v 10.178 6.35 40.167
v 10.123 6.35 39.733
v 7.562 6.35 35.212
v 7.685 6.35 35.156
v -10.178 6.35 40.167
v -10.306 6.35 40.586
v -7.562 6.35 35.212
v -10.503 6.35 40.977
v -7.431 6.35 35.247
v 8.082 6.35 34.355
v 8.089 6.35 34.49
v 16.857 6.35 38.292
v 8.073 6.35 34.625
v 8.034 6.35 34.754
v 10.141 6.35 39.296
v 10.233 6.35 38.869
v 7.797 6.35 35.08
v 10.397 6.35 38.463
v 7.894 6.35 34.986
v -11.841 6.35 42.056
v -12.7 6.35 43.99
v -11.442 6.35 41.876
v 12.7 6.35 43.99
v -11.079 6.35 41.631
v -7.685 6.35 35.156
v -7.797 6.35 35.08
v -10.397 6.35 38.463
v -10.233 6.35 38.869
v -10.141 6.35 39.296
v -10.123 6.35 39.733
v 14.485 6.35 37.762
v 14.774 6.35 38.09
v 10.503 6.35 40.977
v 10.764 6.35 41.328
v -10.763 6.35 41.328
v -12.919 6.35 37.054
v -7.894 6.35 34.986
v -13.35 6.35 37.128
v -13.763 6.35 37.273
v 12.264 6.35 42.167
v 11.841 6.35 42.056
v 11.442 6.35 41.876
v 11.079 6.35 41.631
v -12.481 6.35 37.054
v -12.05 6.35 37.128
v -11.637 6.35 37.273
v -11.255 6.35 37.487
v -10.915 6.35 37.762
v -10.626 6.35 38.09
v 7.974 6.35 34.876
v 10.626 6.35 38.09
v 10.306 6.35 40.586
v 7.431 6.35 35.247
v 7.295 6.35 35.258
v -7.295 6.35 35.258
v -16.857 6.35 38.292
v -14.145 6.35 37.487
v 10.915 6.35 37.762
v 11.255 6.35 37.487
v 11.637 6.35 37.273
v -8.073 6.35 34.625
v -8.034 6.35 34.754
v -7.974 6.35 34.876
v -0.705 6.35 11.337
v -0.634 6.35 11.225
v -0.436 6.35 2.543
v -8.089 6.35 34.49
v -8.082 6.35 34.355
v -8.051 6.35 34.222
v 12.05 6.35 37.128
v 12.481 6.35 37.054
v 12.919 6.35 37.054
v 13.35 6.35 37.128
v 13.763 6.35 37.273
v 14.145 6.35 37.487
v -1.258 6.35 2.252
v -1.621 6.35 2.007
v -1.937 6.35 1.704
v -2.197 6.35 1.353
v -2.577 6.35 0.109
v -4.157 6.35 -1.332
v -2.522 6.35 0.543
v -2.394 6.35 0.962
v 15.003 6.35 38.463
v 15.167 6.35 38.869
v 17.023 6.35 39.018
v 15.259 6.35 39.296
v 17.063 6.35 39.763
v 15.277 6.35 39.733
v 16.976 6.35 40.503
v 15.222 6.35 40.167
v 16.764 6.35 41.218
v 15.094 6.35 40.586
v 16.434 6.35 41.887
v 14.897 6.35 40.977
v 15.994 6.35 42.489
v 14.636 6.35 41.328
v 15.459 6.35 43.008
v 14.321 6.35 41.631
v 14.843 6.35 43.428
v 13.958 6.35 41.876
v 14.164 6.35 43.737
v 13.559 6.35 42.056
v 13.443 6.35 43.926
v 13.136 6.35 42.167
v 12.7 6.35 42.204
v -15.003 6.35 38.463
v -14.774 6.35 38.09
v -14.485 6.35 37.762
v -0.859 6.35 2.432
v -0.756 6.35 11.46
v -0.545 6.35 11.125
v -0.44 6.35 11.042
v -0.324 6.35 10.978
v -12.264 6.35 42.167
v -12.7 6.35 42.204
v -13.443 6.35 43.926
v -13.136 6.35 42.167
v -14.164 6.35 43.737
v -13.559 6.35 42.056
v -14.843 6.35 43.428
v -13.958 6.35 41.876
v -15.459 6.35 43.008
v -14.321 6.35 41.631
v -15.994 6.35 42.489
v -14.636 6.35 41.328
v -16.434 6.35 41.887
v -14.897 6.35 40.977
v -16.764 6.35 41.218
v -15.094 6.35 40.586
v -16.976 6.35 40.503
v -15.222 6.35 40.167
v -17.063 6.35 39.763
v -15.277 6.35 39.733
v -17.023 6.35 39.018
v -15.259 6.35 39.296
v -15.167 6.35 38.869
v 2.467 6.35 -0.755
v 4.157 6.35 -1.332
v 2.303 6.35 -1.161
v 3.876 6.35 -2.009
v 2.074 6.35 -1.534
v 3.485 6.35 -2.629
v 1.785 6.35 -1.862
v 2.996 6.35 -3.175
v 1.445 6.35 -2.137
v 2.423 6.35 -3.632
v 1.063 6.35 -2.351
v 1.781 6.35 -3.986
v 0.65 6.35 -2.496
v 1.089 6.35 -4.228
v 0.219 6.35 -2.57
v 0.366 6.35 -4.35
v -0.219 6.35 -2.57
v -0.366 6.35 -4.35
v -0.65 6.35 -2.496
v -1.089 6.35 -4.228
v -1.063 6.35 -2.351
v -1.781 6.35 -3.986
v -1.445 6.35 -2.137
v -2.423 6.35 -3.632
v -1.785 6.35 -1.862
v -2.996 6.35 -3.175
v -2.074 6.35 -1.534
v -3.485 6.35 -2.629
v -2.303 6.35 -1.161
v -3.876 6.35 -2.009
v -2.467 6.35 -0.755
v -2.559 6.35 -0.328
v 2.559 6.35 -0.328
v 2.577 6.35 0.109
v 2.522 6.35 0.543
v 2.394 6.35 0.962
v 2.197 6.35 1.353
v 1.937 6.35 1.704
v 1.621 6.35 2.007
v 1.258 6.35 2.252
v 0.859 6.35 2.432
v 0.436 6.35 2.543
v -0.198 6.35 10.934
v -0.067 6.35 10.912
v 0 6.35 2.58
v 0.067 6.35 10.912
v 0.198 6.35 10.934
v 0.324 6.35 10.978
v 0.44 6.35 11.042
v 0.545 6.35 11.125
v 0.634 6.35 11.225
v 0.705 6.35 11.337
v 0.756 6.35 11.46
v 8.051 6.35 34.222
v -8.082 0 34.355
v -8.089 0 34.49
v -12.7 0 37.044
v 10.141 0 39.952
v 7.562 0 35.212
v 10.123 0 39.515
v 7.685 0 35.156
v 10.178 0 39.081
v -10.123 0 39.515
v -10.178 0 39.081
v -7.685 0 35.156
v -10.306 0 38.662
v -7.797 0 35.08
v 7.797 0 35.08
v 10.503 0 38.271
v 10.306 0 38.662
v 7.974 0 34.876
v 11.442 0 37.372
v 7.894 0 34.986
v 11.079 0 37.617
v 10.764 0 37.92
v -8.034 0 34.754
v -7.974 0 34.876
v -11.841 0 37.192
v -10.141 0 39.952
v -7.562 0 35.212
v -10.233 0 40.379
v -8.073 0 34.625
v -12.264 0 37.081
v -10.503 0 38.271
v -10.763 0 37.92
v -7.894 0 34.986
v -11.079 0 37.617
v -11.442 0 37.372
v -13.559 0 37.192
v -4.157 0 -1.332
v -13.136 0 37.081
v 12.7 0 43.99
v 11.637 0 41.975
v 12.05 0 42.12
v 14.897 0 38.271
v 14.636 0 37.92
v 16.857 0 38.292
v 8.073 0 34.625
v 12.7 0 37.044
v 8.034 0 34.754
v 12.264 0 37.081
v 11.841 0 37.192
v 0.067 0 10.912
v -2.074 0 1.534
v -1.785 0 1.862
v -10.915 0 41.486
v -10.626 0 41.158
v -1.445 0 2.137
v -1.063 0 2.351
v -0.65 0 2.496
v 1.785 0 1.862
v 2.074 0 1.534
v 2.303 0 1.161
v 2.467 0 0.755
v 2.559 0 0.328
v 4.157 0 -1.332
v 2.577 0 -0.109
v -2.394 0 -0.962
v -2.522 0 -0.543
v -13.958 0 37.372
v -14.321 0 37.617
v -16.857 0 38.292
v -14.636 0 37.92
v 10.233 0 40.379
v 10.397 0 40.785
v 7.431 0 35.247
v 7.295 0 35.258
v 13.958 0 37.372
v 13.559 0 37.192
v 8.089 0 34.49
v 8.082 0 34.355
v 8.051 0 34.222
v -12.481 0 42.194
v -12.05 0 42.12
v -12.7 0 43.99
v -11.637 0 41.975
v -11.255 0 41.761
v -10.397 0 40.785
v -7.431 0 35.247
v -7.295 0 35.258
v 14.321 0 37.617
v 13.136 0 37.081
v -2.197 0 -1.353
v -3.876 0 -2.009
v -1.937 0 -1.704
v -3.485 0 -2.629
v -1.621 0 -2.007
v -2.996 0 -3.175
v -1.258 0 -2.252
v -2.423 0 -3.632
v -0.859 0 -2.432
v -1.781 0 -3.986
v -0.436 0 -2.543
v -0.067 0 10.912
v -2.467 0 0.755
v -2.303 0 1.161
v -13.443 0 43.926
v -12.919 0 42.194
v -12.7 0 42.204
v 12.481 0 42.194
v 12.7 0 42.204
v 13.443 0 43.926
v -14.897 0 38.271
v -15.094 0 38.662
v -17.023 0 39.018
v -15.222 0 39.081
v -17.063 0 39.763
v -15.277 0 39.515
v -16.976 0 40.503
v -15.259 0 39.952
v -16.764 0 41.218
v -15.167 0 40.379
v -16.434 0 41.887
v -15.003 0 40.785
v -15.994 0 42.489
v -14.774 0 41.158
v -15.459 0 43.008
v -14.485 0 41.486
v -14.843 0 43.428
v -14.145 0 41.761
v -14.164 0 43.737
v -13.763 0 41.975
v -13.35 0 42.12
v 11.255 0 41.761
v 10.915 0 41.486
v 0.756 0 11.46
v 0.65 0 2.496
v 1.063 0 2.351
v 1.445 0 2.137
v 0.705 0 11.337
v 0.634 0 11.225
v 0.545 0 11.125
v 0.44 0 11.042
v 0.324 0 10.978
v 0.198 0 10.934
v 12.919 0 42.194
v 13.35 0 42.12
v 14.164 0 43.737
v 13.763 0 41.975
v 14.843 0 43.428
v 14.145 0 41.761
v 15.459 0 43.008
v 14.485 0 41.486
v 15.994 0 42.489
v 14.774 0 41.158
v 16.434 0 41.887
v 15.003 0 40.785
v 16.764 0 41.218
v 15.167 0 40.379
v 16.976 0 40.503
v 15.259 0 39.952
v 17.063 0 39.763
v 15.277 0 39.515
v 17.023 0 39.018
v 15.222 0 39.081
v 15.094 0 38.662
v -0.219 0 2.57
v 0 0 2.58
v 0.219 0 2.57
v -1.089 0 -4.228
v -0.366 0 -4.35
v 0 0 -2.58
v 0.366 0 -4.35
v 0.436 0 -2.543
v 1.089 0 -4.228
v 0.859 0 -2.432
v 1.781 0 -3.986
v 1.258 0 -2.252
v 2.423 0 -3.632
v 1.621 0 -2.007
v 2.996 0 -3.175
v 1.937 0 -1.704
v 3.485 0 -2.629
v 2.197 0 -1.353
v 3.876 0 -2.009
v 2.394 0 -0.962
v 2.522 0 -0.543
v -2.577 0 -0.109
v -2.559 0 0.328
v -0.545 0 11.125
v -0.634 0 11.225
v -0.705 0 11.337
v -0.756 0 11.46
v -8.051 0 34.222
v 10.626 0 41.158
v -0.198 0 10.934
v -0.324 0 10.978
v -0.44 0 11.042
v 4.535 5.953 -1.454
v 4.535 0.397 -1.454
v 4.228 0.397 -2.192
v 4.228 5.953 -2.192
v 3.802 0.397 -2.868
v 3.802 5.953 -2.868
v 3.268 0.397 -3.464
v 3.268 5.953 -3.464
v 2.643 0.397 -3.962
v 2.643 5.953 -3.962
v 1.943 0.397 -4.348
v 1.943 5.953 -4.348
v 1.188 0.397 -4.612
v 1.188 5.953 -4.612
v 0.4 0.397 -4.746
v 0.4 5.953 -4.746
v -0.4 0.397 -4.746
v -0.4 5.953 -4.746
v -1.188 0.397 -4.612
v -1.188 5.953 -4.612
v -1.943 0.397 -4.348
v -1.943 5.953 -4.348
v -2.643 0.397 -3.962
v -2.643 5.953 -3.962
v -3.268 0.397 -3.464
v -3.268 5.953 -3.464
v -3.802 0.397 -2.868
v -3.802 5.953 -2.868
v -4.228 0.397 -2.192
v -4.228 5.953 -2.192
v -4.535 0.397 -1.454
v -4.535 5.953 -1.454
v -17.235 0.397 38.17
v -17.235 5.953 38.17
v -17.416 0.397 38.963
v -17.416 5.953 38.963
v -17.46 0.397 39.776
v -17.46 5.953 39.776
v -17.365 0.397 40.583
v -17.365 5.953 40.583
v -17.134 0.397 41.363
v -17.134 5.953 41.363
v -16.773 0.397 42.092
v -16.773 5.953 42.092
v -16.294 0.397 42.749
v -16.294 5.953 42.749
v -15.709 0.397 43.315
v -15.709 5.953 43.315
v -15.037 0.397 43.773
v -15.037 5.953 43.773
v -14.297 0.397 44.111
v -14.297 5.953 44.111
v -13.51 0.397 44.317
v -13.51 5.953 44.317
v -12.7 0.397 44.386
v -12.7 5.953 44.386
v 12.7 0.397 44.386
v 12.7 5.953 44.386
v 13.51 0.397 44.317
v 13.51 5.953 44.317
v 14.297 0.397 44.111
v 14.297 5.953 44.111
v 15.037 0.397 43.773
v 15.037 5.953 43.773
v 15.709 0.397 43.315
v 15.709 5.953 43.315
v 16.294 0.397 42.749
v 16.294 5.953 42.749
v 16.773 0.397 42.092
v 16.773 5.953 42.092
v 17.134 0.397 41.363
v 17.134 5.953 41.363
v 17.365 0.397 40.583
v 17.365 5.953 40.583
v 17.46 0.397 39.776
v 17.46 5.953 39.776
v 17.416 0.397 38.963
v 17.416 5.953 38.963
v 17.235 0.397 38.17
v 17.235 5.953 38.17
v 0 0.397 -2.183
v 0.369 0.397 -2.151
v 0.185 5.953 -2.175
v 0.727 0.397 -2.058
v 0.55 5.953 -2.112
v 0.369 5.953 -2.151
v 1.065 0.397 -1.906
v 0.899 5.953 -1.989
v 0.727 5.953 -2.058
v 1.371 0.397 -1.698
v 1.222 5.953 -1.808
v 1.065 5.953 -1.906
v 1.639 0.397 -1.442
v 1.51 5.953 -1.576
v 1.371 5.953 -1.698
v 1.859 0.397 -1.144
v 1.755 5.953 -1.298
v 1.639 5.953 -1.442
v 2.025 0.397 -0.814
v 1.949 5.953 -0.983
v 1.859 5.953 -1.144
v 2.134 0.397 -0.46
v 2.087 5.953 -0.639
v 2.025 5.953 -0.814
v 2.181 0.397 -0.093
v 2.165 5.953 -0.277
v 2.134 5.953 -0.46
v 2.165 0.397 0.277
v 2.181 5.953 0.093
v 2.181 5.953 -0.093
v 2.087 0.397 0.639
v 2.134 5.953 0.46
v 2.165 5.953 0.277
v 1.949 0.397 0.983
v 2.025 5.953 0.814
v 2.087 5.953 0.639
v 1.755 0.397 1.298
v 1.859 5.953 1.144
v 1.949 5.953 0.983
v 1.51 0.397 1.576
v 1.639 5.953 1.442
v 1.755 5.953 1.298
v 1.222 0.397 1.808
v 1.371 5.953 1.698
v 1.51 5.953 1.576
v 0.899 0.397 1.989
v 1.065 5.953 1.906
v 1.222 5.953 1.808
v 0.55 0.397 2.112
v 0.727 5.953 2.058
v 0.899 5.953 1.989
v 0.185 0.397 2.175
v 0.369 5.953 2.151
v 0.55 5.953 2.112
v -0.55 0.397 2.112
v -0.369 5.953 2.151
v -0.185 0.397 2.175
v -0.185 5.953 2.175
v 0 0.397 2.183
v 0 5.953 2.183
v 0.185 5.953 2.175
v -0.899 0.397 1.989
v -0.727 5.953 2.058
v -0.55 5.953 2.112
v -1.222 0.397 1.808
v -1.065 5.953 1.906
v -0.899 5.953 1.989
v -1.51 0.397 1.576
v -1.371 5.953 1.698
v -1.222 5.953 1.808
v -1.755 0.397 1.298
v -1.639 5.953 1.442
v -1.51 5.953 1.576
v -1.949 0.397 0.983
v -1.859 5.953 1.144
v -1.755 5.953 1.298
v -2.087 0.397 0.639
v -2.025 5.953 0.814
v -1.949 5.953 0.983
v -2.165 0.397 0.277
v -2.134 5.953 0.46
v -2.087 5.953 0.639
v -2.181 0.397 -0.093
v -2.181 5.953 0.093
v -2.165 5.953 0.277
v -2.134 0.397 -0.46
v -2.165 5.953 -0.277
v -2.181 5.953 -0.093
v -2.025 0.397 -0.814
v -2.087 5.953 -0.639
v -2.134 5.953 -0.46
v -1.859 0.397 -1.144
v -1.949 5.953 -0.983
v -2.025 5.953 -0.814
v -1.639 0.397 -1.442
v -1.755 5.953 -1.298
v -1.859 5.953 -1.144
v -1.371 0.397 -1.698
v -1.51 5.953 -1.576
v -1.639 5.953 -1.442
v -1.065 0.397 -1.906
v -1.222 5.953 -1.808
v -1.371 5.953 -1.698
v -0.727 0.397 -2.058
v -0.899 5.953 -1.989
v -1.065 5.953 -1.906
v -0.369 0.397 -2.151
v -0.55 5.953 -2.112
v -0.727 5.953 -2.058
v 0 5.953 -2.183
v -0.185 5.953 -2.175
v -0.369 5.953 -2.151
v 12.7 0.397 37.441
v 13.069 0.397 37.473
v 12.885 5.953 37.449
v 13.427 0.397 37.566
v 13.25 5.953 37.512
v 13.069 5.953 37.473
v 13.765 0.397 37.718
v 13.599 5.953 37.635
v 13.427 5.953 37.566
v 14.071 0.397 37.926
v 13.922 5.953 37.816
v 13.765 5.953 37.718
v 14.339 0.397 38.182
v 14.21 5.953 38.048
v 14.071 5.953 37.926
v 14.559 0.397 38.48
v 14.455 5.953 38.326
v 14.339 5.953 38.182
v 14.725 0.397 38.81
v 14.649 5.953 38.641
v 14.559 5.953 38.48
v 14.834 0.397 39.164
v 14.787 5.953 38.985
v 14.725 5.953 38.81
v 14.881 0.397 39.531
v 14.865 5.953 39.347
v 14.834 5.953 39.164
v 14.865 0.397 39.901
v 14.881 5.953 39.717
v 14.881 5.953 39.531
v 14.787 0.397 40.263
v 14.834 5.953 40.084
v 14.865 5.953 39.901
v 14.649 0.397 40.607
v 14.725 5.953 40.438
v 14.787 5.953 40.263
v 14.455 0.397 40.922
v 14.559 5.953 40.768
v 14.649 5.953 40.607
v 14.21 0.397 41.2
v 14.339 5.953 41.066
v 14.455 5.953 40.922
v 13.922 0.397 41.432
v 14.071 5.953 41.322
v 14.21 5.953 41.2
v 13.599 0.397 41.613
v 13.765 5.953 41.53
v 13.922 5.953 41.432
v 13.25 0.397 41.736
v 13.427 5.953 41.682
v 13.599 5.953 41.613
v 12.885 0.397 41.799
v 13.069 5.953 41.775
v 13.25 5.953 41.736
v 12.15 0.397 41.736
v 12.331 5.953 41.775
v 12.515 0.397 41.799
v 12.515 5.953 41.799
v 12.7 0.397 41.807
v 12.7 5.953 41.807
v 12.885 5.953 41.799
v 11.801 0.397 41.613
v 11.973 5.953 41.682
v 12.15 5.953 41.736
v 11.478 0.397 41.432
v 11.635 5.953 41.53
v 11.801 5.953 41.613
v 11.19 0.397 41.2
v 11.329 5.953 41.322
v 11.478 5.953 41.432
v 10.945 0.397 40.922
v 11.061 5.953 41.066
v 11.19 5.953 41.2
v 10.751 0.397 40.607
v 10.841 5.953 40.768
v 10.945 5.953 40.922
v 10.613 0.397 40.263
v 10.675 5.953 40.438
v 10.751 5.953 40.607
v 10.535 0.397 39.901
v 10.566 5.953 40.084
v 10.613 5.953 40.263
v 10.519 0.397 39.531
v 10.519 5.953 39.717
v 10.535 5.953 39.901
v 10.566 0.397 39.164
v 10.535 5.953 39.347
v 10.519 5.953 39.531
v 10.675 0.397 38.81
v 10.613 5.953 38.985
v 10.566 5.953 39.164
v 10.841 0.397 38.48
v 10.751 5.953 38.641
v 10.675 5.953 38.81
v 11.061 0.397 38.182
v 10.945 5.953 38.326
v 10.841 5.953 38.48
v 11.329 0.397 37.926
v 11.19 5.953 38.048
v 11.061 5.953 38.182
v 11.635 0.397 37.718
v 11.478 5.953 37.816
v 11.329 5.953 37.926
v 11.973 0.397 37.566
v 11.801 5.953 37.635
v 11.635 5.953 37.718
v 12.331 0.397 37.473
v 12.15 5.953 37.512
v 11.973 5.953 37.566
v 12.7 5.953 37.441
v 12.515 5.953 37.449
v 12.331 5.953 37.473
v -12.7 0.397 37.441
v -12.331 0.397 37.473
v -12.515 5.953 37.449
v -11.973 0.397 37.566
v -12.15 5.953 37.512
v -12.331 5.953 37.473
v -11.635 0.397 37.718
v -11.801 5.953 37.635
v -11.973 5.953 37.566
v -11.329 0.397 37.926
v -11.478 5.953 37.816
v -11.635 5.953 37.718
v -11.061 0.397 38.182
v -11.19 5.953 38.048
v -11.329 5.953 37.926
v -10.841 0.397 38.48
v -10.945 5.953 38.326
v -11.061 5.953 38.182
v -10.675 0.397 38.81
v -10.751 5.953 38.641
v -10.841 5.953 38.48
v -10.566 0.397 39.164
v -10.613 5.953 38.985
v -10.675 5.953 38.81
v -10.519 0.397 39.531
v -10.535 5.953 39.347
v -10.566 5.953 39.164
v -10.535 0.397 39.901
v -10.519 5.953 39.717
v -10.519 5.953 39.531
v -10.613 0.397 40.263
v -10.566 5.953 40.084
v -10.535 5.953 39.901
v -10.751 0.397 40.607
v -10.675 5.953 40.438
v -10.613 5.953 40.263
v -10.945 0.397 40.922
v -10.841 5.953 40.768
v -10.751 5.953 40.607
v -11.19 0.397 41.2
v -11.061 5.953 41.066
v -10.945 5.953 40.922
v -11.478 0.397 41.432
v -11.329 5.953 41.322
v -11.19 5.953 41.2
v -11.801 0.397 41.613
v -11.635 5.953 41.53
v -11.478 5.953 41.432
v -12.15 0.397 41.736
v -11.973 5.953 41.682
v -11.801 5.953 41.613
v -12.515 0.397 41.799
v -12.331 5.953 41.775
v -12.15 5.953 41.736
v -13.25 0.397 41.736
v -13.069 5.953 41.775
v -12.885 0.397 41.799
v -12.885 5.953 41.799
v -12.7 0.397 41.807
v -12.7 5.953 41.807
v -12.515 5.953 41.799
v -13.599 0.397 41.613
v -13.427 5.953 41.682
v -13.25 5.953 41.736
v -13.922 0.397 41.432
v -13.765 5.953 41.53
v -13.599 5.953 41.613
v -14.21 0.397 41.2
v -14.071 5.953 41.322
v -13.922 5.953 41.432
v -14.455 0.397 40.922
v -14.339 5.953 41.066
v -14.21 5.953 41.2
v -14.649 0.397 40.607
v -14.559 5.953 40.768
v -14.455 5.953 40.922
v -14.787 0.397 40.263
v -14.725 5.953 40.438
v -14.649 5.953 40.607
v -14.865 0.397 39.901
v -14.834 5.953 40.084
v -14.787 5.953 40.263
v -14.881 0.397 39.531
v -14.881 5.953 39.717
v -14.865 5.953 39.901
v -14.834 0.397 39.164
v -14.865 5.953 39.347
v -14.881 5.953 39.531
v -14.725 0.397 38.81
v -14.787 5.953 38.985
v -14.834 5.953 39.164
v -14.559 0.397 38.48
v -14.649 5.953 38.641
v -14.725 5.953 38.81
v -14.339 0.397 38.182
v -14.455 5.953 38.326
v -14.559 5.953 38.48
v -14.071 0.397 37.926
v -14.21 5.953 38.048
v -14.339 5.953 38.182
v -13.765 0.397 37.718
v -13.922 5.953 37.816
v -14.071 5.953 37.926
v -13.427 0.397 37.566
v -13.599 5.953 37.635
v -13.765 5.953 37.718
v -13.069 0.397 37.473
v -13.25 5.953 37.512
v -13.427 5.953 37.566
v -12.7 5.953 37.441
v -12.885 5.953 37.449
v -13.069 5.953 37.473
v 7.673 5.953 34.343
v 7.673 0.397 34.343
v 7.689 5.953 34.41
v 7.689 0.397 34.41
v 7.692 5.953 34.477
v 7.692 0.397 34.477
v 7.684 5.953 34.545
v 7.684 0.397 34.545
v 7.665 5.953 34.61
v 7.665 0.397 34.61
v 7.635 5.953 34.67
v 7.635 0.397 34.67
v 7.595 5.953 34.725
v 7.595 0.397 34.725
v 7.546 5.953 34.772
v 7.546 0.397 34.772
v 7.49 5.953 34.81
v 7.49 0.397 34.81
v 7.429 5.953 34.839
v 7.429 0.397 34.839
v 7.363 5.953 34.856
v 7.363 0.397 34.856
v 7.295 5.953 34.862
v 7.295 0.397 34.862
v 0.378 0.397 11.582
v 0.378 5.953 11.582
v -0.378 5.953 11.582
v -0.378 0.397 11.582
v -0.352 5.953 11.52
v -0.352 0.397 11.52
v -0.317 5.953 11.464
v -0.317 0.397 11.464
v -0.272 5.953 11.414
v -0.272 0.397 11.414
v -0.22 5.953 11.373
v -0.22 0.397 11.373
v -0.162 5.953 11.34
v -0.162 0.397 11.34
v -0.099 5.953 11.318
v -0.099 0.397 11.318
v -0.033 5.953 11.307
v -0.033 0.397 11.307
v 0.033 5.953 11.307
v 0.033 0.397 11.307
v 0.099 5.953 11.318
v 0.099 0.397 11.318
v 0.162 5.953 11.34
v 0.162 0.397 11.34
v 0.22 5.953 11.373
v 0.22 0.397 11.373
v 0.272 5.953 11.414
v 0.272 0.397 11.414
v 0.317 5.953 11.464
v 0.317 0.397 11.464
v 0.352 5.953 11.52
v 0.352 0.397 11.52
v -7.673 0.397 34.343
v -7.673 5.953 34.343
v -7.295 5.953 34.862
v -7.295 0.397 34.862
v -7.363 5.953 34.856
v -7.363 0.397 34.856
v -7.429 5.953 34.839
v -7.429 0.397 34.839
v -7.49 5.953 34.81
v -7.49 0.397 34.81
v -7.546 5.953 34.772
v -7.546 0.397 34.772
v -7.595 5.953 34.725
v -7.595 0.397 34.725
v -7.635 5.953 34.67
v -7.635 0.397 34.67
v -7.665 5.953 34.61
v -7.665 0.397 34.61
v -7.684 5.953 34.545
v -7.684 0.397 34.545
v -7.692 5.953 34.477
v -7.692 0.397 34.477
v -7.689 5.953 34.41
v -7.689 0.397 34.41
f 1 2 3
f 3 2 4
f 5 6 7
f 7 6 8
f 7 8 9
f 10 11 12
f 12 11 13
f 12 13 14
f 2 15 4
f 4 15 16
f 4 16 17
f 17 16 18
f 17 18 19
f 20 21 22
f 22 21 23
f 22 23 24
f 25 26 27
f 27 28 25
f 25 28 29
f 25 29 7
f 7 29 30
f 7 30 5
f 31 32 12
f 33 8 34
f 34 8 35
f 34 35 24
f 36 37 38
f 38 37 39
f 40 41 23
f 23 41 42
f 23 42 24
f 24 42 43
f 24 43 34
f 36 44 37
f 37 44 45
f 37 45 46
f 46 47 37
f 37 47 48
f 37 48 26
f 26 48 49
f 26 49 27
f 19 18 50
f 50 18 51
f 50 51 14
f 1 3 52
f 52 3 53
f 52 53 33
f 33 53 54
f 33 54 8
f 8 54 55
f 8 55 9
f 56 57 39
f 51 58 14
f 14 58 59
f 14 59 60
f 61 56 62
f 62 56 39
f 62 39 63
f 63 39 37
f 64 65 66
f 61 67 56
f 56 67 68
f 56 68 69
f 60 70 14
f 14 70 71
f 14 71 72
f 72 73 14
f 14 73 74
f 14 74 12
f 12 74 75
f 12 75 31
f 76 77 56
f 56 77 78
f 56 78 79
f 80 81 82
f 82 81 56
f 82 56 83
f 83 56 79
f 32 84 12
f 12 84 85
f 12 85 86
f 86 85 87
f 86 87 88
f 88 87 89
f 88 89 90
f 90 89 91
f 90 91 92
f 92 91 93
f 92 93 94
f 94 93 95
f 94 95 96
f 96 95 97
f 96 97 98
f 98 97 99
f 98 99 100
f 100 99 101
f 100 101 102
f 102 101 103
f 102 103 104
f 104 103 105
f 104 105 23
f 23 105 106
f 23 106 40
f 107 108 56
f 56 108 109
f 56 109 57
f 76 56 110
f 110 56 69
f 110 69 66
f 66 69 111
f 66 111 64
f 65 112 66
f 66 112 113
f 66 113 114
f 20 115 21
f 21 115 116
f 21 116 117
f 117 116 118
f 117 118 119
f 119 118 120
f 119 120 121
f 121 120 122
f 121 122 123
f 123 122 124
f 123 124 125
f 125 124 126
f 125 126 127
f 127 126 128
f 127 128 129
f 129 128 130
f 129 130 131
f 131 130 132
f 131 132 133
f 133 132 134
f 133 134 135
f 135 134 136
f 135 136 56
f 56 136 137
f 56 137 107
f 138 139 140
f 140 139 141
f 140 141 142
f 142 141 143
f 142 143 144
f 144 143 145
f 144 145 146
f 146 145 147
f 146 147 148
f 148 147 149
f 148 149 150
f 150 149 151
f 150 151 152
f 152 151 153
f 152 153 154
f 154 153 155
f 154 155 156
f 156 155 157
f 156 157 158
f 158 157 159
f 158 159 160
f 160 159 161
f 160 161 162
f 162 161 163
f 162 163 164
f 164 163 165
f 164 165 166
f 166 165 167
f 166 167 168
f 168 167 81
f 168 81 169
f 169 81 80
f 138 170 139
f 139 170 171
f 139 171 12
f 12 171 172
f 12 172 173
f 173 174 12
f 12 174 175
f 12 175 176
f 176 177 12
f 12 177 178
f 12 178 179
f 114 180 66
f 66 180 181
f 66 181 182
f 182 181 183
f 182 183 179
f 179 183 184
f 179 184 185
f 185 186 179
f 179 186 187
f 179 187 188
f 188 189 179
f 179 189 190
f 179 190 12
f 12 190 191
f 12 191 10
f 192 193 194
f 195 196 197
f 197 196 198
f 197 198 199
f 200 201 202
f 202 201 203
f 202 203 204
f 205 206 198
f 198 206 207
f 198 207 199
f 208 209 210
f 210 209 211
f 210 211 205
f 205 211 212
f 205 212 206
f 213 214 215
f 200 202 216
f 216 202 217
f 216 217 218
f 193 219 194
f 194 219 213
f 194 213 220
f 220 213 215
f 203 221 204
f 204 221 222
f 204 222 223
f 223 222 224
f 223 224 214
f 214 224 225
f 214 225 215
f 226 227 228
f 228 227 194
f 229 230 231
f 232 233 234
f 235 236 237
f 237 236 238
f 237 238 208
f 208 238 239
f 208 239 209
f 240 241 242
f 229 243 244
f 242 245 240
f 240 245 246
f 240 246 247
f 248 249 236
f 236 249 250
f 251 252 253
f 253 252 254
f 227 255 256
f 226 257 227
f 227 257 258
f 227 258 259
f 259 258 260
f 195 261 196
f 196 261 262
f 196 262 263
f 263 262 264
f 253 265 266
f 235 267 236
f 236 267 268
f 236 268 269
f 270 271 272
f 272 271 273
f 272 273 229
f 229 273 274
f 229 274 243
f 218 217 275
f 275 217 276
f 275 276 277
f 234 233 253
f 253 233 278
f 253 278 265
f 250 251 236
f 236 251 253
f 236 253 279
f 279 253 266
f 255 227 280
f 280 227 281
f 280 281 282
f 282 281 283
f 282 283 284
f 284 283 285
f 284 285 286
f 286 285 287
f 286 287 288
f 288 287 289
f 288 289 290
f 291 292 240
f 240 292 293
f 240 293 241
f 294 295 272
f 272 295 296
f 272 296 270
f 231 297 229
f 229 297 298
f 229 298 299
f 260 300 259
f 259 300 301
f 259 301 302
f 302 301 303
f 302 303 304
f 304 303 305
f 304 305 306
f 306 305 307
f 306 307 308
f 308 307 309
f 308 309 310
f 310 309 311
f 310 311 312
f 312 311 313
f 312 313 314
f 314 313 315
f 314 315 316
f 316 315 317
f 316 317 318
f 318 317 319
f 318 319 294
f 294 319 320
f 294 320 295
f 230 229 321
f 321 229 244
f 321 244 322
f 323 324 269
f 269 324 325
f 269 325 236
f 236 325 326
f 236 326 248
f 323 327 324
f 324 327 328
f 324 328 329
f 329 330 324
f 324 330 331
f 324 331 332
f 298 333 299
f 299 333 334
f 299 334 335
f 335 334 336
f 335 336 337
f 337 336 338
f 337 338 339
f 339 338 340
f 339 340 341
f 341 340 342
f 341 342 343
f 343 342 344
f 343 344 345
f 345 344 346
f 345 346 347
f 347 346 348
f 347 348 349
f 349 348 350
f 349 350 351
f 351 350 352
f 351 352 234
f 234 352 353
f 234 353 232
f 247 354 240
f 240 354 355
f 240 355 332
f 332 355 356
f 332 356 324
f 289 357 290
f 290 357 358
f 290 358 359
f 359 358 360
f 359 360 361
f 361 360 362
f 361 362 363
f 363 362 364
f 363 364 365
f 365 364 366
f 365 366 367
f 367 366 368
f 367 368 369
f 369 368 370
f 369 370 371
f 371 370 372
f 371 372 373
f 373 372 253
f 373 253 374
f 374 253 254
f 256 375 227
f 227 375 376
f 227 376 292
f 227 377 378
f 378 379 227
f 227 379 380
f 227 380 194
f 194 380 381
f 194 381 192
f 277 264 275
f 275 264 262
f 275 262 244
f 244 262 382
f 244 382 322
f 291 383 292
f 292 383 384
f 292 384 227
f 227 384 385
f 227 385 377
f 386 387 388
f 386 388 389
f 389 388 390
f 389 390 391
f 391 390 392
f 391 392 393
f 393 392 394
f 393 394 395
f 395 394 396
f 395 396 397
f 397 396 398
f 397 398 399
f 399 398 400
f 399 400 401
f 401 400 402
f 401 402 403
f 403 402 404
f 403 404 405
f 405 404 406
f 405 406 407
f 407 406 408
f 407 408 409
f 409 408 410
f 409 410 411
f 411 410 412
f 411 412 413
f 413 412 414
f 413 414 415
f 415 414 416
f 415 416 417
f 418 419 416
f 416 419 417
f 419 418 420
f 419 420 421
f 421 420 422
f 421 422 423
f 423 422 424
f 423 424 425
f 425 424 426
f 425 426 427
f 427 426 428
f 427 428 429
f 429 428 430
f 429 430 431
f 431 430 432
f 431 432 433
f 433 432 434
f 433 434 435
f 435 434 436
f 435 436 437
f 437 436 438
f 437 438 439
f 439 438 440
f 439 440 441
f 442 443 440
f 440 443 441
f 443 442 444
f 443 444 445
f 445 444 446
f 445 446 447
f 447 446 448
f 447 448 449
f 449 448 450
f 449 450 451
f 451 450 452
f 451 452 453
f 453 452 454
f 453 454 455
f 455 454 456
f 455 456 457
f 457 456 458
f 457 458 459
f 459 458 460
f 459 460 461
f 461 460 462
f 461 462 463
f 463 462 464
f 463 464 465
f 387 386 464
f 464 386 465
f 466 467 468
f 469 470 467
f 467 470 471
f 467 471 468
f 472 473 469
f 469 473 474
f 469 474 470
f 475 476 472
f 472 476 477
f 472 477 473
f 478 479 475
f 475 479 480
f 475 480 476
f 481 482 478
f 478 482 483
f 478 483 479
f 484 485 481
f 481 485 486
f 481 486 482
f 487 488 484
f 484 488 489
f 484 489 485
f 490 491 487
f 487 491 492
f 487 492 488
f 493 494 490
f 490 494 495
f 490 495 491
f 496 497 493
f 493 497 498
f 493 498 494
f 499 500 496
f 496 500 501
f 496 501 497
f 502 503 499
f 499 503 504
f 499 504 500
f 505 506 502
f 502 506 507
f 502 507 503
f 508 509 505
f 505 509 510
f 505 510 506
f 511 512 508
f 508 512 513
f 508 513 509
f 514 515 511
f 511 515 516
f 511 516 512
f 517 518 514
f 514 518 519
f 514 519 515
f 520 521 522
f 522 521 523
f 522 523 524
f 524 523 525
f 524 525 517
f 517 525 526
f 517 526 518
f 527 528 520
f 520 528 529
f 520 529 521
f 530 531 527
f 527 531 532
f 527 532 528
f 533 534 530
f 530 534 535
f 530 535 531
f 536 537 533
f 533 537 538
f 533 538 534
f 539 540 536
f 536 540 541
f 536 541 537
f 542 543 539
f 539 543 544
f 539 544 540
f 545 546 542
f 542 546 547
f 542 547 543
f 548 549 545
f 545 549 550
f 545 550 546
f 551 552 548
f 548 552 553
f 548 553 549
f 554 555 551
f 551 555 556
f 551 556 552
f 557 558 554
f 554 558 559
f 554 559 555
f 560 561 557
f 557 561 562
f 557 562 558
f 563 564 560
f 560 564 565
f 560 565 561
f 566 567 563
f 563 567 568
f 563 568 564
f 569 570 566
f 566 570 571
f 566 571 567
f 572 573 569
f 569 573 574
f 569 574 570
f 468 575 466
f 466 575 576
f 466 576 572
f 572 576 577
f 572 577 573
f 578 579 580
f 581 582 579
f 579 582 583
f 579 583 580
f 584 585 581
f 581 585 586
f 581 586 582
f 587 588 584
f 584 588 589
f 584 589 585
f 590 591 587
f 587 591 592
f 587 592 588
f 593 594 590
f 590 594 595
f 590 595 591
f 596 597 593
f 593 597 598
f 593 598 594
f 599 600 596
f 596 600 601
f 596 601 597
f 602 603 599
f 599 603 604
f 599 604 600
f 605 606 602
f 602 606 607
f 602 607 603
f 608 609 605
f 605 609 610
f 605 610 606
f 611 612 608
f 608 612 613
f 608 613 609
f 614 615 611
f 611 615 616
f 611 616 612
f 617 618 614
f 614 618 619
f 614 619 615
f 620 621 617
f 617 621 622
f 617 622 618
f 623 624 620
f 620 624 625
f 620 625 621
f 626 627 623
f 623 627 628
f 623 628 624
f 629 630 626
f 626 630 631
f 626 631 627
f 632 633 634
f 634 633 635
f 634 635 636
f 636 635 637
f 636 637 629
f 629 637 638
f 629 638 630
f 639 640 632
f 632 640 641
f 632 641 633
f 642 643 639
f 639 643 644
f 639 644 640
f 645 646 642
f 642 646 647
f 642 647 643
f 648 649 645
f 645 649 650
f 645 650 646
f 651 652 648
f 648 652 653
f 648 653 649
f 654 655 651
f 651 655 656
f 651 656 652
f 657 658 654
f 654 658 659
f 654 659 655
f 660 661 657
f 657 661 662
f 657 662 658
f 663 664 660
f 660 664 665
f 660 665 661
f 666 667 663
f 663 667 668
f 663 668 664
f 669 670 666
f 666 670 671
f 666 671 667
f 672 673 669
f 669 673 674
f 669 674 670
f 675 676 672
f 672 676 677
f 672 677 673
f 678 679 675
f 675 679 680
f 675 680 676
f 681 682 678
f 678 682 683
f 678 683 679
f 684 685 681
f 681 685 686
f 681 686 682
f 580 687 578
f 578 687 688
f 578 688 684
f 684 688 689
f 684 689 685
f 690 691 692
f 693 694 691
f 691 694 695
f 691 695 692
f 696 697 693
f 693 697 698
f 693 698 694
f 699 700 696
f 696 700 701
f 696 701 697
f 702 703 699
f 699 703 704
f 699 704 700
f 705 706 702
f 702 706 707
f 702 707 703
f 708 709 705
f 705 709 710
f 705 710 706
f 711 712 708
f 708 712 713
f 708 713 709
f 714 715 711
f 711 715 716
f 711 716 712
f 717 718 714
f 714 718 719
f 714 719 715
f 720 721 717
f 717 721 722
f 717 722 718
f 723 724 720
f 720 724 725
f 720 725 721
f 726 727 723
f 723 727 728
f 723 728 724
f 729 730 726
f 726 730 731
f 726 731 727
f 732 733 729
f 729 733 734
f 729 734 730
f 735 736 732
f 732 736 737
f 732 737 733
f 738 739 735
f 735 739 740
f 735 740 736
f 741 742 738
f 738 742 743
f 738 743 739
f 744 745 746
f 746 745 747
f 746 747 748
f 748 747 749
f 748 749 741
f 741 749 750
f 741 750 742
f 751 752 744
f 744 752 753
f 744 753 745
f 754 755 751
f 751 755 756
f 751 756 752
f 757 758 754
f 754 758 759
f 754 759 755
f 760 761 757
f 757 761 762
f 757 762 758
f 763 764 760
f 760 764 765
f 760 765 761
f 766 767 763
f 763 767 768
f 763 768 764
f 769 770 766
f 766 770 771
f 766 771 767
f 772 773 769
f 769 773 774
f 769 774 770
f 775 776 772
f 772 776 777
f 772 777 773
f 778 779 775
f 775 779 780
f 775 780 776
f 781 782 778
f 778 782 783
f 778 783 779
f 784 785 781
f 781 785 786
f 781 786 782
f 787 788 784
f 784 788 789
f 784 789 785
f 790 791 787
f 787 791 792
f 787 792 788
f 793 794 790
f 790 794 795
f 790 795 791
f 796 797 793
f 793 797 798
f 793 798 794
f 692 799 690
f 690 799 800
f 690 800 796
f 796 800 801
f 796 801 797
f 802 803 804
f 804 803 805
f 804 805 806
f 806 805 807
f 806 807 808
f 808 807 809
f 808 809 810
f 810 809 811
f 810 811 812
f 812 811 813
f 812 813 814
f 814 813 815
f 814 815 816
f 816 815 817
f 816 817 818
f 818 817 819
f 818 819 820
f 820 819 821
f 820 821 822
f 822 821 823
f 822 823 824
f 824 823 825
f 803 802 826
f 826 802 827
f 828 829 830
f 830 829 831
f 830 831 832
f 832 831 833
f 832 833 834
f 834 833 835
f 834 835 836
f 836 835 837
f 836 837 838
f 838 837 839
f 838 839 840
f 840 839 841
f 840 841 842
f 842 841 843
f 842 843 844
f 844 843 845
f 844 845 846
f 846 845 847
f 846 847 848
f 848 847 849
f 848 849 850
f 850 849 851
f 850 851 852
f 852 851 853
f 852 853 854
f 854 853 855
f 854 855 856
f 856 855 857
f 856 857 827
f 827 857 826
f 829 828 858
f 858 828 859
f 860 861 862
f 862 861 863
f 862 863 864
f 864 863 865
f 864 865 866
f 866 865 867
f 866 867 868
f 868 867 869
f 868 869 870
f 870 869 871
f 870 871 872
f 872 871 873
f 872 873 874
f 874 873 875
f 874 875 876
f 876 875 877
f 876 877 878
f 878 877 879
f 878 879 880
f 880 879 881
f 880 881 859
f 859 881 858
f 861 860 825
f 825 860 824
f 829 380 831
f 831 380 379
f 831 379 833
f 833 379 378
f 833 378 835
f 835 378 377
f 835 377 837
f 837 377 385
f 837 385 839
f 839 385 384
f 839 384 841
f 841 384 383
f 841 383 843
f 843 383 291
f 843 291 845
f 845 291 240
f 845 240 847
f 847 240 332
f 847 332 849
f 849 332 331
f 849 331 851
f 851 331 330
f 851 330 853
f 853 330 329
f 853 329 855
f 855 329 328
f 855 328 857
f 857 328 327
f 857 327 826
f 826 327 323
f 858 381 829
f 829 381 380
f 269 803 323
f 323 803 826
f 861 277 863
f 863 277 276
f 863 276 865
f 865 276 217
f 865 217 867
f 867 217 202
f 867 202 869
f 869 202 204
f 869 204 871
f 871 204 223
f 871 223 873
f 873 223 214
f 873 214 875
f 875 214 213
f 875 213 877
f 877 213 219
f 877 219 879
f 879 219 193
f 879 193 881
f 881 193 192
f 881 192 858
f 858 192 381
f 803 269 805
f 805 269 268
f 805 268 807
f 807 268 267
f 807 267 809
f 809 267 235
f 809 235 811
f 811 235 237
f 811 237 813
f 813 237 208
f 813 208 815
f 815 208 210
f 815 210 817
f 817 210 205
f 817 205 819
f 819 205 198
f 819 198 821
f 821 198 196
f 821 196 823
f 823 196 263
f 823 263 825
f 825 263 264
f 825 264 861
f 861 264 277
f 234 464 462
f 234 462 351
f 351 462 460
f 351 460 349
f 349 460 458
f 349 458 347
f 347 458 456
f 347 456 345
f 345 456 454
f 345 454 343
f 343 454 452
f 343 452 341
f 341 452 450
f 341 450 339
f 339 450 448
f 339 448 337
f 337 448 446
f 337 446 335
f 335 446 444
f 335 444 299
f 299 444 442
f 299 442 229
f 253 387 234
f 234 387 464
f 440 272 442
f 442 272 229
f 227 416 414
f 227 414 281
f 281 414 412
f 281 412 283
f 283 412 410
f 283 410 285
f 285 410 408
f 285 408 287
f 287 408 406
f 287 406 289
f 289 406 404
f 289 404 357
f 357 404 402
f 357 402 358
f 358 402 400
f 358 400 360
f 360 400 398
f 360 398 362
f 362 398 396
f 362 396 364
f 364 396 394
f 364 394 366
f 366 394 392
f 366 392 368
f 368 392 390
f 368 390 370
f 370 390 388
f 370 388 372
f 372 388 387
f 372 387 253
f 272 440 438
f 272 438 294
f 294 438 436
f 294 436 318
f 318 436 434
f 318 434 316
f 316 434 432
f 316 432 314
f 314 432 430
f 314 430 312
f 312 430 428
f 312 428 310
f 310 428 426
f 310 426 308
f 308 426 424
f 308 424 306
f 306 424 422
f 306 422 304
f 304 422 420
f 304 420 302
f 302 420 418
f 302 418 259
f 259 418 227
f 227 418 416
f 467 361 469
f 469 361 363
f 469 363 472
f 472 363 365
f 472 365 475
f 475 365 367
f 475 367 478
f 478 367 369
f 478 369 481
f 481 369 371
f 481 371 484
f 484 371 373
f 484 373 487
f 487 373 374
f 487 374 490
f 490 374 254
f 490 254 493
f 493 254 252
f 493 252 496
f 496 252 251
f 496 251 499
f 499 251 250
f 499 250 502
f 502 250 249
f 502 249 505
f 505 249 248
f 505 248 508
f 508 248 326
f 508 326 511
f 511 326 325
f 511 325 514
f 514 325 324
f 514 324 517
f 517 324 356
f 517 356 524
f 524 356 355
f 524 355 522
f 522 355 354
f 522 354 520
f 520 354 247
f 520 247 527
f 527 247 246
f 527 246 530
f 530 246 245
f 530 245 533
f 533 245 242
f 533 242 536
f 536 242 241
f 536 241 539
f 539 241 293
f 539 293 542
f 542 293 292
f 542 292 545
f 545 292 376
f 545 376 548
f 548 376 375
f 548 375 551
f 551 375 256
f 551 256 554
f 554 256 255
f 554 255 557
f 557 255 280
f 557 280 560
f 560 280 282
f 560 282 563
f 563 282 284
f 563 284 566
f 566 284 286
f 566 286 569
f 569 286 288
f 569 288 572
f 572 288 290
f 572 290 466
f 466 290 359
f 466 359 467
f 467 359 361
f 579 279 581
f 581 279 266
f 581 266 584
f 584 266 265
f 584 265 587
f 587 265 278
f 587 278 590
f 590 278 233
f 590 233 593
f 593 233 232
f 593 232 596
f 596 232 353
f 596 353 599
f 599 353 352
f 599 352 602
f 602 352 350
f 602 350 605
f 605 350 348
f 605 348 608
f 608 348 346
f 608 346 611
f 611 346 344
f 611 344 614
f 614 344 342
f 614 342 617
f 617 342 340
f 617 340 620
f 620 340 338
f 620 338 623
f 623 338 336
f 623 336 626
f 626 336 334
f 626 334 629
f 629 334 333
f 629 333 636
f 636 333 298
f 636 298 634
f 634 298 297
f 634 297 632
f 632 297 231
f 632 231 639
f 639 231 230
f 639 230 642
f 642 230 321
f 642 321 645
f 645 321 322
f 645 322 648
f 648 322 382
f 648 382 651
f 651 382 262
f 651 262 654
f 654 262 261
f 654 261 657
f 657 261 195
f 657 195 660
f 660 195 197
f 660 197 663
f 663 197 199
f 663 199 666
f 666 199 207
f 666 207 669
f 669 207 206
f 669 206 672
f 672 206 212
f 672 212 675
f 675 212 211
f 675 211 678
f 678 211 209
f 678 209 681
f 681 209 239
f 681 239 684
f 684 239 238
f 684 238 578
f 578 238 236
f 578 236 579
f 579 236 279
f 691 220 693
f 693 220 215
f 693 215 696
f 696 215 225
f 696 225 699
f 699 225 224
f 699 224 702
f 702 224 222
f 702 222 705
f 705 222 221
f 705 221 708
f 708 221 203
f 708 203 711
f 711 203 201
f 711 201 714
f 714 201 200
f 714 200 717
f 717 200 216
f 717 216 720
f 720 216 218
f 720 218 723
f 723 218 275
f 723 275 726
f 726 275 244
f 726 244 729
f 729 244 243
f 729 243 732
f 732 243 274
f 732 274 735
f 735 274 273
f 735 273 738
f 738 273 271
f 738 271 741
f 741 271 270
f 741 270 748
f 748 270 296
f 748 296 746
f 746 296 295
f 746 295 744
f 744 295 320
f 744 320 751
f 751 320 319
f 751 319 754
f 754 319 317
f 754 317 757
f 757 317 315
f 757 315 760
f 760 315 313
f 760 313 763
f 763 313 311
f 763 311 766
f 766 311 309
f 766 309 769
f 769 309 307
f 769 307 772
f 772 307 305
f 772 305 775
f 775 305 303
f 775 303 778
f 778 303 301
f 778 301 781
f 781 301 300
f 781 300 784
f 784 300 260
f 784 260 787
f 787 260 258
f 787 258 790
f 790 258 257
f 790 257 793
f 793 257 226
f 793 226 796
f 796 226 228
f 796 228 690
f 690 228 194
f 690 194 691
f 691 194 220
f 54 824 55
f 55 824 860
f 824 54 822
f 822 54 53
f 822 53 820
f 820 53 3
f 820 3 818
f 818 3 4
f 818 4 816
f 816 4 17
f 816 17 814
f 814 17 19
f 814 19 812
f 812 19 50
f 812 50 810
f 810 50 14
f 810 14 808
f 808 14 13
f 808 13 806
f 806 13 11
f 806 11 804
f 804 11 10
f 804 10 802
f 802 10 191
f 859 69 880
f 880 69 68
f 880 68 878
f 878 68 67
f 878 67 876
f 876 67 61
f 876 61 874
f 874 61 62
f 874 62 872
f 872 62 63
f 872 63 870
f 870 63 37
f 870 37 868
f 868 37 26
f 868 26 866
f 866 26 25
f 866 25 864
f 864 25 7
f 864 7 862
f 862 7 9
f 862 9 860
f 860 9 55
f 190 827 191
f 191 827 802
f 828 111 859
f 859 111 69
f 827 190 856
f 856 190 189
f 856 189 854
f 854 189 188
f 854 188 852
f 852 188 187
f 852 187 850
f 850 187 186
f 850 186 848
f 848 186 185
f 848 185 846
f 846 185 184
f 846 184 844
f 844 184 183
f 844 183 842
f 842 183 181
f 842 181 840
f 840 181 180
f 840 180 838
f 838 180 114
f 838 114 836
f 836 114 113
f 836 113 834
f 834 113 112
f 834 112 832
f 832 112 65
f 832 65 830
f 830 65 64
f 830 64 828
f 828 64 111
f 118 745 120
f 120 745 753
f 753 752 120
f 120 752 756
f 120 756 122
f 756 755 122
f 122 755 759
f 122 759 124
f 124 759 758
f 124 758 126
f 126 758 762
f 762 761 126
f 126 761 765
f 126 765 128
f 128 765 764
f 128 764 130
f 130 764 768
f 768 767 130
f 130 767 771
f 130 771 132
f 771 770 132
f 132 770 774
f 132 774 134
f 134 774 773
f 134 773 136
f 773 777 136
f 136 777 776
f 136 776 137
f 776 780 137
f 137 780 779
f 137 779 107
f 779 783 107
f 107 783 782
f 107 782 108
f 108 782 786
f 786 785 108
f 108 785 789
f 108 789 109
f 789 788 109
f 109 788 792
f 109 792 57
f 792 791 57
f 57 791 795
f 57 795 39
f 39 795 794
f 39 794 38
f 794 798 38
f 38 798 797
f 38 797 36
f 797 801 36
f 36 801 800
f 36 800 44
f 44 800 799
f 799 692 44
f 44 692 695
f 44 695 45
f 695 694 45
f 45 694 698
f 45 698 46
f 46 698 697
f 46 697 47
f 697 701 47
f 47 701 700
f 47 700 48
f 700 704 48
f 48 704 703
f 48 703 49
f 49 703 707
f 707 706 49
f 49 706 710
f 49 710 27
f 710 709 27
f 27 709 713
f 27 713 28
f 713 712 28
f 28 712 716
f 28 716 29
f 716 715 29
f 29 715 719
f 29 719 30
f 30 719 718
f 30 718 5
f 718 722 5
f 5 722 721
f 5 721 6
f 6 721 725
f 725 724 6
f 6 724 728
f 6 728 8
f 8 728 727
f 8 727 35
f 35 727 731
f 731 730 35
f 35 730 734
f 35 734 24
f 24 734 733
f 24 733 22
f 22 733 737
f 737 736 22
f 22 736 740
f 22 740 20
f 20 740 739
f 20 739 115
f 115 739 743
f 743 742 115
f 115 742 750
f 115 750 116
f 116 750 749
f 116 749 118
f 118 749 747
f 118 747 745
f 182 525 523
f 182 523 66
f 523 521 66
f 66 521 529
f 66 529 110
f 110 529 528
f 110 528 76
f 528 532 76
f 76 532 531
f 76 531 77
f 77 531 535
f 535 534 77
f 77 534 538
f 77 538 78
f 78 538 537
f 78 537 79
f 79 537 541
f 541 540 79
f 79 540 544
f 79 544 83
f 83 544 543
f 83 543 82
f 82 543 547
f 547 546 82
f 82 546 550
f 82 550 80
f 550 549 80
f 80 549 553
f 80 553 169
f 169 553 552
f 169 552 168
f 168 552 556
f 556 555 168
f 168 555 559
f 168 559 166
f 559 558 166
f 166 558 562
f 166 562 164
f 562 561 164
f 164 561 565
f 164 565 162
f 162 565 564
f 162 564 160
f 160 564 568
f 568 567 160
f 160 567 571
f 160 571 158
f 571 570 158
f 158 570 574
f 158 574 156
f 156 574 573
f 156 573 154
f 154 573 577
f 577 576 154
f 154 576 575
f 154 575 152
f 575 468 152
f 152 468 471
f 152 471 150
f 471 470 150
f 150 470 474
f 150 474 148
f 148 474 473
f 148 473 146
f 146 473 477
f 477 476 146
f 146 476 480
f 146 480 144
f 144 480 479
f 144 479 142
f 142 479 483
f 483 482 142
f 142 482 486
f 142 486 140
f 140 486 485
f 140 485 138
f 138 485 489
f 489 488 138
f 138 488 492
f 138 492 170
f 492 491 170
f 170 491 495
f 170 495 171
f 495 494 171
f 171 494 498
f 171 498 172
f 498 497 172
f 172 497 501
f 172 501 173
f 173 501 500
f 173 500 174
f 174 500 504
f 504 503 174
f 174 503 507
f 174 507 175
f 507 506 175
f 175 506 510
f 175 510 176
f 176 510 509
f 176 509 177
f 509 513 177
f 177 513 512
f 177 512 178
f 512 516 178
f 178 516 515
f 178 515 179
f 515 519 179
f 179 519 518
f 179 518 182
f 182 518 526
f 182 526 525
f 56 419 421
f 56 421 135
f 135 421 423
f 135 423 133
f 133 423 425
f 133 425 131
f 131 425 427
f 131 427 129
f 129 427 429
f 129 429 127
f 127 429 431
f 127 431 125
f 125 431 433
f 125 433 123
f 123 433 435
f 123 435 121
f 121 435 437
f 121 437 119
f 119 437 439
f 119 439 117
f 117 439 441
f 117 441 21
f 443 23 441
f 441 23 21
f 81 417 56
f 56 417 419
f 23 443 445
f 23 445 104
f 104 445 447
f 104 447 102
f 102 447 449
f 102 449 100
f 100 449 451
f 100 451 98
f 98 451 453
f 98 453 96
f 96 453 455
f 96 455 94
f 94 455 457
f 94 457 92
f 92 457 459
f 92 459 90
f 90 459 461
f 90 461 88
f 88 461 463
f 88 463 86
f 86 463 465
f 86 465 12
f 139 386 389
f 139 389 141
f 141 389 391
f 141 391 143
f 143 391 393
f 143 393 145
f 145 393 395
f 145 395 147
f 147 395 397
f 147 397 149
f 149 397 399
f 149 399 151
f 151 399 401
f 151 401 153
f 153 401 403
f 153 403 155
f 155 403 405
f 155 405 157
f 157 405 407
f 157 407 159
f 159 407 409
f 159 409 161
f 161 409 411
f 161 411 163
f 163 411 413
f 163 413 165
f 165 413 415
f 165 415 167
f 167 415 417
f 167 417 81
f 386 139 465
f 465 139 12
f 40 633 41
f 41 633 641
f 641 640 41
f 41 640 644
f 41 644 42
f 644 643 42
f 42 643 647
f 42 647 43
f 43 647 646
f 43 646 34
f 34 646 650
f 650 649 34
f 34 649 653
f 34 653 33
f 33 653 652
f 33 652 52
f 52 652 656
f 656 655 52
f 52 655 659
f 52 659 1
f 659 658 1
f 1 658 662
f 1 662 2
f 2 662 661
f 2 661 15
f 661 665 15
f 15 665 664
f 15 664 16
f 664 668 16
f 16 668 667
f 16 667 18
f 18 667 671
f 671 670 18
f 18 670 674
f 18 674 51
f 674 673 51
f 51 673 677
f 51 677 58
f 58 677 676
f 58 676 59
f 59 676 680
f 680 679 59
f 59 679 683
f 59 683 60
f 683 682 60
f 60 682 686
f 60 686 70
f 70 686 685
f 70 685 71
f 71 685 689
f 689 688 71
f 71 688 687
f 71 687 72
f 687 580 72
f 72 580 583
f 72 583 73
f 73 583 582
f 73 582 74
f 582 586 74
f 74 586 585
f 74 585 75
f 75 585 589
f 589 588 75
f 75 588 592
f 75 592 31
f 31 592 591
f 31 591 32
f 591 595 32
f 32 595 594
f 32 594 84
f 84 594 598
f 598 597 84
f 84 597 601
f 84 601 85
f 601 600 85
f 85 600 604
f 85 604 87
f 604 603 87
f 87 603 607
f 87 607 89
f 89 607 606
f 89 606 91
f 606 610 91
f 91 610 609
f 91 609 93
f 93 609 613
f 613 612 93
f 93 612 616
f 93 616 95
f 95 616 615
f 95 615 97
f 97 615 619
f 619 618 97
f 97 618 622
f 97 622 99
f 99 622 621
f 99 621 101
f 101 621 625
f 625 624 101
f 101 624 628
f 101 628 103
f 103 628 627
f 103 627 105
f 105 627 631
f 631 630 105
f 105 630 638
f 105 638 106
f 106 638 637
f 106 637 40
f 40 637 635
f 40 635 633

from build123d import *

# Parameters (mm, degrees)
SKETCH1_R           = 2.1828125
BOSS_EXTRUDE2_DEPTH = 6.35
CHAMFER2_SIZE       = 0.396875


with BuildPart() as part:
    # Sketch1 → Boss-Extrude2 (new body)
    with BuildSketch(Plane(origin=(0, 0, 0), x_dir=(1, 0, 0), z_dir=(0, 1, 0))):
        with BuildLine():
            Line((-4.535244397, 1.453603973), (-17.235244397, -38.170396027))
            ThreePointArc((-17.235244397, -38.170396027), (-16.547349423, -42.431010628), (-12.7, -44.3865))
            Line((-12.7, -44.3865), (12.7, -44.3865))
            ThreePointArc((12.7, -44.3865), (16.547349423, -42.431010628), (17.235244397, -38.170396027))
            Line((17.235244397, -38.170396027), (4.535244397, 1.453603973))
            ThreePointArc((4.535244397, 1.453603973), (0, 4.7625), (-4.535244397, 1.453603973))
        make_face()
        Circle(SKETCH1_R, mode=Mode.SUBTRACT)
        with Locations((12.7, -39.624)):
            Circle(SKETCH1_R, mode=Mode.SUBTRACT)
        with Locations((-12.7, -39.624)):
            Circle(SKETCH1_R, mode=Mode.SUBTRACT)
        with BuildLine():
            Line((-0.377937033, -11.581541204), (-7.67343387, -34.343491336))
            ThreePointArc((-7.67343387, -34.343491336), (-7.616109289, -34.698542552), (-7.295496837, -34.8615))
            Line((-7.295496837, -34.8615), (7.295496837, -34.8615))
            ThreePointArc((7.295496837, -34.8615), (7.616109289, -34.698542552), (7.67343387, -34.343491336))
            Line((7.67343387, -34.343491336), (0.377937033, -11.581541204))
            ThreePointArc((0.377937033, -11.581541204), (0, -11.305799869), (-0.377937033, -11.581541204))
        make_face(mode=Mode.SUBTRACT)
    extrude(amount=BOSS_EXTRUDE2_DEPTH)

    # Chamfer2
    chamfer2_edges = [part.edges().sort_by_distance(p)[0] for p in [
        (-16.547349423, 6.35, 42.431010628),
        (0, 6.35, 44.3865),
        (-2.1828125, 0, 0),
        (-2.1828125, 6.35, 0),
        (10.5171875, 0, 39.624),
        (16.547349423, 6.35, 42.431010628),
        (10.5171875, 6.35, 39.624),
        (-14.8828125, 0, 39.624),
        (10.885244397, 6.35, 18.358396027),
        (-14.8828125, 6.35, 39.624),
        (7.616109289, 0, 34.698542552),
        (4.025685452, 0, 22.96251627),
        (0, 0, 11.305799869),
        (-4.025685452, 0, 22.96251627),
        (-7.616109289, 0, 34.698542552),
        (0, 0, 34.8615),
        (7.616109289, 6.35, 34.698542552),
        (4.025685452, 6.35, 22.96251627),
        (0, 6.35, 11.305799869),
        (-4.025685452, 6.35, 22.96251627),
        (-7.616109289, 6.35, 34.698542552),
        (0, 6.35, 34.8615),
        (0, 6.35, -4.7625),
        (10.885244397, 0, 18.358396027),
        (16.547349423, 0, 42.431010628),
        (0, 0, 44.3865),
        (-16.547349423, 0, 42.431010628),
        (-10.885244397, 0, 18.358396027),
        (0, 0, -4.7625),
        (-10.885244397, 6.35, 18.358396027),
    ]]
    chamfer(chamfer2_edges, length=CHAMFER2_SIZE)


solid = part.part
